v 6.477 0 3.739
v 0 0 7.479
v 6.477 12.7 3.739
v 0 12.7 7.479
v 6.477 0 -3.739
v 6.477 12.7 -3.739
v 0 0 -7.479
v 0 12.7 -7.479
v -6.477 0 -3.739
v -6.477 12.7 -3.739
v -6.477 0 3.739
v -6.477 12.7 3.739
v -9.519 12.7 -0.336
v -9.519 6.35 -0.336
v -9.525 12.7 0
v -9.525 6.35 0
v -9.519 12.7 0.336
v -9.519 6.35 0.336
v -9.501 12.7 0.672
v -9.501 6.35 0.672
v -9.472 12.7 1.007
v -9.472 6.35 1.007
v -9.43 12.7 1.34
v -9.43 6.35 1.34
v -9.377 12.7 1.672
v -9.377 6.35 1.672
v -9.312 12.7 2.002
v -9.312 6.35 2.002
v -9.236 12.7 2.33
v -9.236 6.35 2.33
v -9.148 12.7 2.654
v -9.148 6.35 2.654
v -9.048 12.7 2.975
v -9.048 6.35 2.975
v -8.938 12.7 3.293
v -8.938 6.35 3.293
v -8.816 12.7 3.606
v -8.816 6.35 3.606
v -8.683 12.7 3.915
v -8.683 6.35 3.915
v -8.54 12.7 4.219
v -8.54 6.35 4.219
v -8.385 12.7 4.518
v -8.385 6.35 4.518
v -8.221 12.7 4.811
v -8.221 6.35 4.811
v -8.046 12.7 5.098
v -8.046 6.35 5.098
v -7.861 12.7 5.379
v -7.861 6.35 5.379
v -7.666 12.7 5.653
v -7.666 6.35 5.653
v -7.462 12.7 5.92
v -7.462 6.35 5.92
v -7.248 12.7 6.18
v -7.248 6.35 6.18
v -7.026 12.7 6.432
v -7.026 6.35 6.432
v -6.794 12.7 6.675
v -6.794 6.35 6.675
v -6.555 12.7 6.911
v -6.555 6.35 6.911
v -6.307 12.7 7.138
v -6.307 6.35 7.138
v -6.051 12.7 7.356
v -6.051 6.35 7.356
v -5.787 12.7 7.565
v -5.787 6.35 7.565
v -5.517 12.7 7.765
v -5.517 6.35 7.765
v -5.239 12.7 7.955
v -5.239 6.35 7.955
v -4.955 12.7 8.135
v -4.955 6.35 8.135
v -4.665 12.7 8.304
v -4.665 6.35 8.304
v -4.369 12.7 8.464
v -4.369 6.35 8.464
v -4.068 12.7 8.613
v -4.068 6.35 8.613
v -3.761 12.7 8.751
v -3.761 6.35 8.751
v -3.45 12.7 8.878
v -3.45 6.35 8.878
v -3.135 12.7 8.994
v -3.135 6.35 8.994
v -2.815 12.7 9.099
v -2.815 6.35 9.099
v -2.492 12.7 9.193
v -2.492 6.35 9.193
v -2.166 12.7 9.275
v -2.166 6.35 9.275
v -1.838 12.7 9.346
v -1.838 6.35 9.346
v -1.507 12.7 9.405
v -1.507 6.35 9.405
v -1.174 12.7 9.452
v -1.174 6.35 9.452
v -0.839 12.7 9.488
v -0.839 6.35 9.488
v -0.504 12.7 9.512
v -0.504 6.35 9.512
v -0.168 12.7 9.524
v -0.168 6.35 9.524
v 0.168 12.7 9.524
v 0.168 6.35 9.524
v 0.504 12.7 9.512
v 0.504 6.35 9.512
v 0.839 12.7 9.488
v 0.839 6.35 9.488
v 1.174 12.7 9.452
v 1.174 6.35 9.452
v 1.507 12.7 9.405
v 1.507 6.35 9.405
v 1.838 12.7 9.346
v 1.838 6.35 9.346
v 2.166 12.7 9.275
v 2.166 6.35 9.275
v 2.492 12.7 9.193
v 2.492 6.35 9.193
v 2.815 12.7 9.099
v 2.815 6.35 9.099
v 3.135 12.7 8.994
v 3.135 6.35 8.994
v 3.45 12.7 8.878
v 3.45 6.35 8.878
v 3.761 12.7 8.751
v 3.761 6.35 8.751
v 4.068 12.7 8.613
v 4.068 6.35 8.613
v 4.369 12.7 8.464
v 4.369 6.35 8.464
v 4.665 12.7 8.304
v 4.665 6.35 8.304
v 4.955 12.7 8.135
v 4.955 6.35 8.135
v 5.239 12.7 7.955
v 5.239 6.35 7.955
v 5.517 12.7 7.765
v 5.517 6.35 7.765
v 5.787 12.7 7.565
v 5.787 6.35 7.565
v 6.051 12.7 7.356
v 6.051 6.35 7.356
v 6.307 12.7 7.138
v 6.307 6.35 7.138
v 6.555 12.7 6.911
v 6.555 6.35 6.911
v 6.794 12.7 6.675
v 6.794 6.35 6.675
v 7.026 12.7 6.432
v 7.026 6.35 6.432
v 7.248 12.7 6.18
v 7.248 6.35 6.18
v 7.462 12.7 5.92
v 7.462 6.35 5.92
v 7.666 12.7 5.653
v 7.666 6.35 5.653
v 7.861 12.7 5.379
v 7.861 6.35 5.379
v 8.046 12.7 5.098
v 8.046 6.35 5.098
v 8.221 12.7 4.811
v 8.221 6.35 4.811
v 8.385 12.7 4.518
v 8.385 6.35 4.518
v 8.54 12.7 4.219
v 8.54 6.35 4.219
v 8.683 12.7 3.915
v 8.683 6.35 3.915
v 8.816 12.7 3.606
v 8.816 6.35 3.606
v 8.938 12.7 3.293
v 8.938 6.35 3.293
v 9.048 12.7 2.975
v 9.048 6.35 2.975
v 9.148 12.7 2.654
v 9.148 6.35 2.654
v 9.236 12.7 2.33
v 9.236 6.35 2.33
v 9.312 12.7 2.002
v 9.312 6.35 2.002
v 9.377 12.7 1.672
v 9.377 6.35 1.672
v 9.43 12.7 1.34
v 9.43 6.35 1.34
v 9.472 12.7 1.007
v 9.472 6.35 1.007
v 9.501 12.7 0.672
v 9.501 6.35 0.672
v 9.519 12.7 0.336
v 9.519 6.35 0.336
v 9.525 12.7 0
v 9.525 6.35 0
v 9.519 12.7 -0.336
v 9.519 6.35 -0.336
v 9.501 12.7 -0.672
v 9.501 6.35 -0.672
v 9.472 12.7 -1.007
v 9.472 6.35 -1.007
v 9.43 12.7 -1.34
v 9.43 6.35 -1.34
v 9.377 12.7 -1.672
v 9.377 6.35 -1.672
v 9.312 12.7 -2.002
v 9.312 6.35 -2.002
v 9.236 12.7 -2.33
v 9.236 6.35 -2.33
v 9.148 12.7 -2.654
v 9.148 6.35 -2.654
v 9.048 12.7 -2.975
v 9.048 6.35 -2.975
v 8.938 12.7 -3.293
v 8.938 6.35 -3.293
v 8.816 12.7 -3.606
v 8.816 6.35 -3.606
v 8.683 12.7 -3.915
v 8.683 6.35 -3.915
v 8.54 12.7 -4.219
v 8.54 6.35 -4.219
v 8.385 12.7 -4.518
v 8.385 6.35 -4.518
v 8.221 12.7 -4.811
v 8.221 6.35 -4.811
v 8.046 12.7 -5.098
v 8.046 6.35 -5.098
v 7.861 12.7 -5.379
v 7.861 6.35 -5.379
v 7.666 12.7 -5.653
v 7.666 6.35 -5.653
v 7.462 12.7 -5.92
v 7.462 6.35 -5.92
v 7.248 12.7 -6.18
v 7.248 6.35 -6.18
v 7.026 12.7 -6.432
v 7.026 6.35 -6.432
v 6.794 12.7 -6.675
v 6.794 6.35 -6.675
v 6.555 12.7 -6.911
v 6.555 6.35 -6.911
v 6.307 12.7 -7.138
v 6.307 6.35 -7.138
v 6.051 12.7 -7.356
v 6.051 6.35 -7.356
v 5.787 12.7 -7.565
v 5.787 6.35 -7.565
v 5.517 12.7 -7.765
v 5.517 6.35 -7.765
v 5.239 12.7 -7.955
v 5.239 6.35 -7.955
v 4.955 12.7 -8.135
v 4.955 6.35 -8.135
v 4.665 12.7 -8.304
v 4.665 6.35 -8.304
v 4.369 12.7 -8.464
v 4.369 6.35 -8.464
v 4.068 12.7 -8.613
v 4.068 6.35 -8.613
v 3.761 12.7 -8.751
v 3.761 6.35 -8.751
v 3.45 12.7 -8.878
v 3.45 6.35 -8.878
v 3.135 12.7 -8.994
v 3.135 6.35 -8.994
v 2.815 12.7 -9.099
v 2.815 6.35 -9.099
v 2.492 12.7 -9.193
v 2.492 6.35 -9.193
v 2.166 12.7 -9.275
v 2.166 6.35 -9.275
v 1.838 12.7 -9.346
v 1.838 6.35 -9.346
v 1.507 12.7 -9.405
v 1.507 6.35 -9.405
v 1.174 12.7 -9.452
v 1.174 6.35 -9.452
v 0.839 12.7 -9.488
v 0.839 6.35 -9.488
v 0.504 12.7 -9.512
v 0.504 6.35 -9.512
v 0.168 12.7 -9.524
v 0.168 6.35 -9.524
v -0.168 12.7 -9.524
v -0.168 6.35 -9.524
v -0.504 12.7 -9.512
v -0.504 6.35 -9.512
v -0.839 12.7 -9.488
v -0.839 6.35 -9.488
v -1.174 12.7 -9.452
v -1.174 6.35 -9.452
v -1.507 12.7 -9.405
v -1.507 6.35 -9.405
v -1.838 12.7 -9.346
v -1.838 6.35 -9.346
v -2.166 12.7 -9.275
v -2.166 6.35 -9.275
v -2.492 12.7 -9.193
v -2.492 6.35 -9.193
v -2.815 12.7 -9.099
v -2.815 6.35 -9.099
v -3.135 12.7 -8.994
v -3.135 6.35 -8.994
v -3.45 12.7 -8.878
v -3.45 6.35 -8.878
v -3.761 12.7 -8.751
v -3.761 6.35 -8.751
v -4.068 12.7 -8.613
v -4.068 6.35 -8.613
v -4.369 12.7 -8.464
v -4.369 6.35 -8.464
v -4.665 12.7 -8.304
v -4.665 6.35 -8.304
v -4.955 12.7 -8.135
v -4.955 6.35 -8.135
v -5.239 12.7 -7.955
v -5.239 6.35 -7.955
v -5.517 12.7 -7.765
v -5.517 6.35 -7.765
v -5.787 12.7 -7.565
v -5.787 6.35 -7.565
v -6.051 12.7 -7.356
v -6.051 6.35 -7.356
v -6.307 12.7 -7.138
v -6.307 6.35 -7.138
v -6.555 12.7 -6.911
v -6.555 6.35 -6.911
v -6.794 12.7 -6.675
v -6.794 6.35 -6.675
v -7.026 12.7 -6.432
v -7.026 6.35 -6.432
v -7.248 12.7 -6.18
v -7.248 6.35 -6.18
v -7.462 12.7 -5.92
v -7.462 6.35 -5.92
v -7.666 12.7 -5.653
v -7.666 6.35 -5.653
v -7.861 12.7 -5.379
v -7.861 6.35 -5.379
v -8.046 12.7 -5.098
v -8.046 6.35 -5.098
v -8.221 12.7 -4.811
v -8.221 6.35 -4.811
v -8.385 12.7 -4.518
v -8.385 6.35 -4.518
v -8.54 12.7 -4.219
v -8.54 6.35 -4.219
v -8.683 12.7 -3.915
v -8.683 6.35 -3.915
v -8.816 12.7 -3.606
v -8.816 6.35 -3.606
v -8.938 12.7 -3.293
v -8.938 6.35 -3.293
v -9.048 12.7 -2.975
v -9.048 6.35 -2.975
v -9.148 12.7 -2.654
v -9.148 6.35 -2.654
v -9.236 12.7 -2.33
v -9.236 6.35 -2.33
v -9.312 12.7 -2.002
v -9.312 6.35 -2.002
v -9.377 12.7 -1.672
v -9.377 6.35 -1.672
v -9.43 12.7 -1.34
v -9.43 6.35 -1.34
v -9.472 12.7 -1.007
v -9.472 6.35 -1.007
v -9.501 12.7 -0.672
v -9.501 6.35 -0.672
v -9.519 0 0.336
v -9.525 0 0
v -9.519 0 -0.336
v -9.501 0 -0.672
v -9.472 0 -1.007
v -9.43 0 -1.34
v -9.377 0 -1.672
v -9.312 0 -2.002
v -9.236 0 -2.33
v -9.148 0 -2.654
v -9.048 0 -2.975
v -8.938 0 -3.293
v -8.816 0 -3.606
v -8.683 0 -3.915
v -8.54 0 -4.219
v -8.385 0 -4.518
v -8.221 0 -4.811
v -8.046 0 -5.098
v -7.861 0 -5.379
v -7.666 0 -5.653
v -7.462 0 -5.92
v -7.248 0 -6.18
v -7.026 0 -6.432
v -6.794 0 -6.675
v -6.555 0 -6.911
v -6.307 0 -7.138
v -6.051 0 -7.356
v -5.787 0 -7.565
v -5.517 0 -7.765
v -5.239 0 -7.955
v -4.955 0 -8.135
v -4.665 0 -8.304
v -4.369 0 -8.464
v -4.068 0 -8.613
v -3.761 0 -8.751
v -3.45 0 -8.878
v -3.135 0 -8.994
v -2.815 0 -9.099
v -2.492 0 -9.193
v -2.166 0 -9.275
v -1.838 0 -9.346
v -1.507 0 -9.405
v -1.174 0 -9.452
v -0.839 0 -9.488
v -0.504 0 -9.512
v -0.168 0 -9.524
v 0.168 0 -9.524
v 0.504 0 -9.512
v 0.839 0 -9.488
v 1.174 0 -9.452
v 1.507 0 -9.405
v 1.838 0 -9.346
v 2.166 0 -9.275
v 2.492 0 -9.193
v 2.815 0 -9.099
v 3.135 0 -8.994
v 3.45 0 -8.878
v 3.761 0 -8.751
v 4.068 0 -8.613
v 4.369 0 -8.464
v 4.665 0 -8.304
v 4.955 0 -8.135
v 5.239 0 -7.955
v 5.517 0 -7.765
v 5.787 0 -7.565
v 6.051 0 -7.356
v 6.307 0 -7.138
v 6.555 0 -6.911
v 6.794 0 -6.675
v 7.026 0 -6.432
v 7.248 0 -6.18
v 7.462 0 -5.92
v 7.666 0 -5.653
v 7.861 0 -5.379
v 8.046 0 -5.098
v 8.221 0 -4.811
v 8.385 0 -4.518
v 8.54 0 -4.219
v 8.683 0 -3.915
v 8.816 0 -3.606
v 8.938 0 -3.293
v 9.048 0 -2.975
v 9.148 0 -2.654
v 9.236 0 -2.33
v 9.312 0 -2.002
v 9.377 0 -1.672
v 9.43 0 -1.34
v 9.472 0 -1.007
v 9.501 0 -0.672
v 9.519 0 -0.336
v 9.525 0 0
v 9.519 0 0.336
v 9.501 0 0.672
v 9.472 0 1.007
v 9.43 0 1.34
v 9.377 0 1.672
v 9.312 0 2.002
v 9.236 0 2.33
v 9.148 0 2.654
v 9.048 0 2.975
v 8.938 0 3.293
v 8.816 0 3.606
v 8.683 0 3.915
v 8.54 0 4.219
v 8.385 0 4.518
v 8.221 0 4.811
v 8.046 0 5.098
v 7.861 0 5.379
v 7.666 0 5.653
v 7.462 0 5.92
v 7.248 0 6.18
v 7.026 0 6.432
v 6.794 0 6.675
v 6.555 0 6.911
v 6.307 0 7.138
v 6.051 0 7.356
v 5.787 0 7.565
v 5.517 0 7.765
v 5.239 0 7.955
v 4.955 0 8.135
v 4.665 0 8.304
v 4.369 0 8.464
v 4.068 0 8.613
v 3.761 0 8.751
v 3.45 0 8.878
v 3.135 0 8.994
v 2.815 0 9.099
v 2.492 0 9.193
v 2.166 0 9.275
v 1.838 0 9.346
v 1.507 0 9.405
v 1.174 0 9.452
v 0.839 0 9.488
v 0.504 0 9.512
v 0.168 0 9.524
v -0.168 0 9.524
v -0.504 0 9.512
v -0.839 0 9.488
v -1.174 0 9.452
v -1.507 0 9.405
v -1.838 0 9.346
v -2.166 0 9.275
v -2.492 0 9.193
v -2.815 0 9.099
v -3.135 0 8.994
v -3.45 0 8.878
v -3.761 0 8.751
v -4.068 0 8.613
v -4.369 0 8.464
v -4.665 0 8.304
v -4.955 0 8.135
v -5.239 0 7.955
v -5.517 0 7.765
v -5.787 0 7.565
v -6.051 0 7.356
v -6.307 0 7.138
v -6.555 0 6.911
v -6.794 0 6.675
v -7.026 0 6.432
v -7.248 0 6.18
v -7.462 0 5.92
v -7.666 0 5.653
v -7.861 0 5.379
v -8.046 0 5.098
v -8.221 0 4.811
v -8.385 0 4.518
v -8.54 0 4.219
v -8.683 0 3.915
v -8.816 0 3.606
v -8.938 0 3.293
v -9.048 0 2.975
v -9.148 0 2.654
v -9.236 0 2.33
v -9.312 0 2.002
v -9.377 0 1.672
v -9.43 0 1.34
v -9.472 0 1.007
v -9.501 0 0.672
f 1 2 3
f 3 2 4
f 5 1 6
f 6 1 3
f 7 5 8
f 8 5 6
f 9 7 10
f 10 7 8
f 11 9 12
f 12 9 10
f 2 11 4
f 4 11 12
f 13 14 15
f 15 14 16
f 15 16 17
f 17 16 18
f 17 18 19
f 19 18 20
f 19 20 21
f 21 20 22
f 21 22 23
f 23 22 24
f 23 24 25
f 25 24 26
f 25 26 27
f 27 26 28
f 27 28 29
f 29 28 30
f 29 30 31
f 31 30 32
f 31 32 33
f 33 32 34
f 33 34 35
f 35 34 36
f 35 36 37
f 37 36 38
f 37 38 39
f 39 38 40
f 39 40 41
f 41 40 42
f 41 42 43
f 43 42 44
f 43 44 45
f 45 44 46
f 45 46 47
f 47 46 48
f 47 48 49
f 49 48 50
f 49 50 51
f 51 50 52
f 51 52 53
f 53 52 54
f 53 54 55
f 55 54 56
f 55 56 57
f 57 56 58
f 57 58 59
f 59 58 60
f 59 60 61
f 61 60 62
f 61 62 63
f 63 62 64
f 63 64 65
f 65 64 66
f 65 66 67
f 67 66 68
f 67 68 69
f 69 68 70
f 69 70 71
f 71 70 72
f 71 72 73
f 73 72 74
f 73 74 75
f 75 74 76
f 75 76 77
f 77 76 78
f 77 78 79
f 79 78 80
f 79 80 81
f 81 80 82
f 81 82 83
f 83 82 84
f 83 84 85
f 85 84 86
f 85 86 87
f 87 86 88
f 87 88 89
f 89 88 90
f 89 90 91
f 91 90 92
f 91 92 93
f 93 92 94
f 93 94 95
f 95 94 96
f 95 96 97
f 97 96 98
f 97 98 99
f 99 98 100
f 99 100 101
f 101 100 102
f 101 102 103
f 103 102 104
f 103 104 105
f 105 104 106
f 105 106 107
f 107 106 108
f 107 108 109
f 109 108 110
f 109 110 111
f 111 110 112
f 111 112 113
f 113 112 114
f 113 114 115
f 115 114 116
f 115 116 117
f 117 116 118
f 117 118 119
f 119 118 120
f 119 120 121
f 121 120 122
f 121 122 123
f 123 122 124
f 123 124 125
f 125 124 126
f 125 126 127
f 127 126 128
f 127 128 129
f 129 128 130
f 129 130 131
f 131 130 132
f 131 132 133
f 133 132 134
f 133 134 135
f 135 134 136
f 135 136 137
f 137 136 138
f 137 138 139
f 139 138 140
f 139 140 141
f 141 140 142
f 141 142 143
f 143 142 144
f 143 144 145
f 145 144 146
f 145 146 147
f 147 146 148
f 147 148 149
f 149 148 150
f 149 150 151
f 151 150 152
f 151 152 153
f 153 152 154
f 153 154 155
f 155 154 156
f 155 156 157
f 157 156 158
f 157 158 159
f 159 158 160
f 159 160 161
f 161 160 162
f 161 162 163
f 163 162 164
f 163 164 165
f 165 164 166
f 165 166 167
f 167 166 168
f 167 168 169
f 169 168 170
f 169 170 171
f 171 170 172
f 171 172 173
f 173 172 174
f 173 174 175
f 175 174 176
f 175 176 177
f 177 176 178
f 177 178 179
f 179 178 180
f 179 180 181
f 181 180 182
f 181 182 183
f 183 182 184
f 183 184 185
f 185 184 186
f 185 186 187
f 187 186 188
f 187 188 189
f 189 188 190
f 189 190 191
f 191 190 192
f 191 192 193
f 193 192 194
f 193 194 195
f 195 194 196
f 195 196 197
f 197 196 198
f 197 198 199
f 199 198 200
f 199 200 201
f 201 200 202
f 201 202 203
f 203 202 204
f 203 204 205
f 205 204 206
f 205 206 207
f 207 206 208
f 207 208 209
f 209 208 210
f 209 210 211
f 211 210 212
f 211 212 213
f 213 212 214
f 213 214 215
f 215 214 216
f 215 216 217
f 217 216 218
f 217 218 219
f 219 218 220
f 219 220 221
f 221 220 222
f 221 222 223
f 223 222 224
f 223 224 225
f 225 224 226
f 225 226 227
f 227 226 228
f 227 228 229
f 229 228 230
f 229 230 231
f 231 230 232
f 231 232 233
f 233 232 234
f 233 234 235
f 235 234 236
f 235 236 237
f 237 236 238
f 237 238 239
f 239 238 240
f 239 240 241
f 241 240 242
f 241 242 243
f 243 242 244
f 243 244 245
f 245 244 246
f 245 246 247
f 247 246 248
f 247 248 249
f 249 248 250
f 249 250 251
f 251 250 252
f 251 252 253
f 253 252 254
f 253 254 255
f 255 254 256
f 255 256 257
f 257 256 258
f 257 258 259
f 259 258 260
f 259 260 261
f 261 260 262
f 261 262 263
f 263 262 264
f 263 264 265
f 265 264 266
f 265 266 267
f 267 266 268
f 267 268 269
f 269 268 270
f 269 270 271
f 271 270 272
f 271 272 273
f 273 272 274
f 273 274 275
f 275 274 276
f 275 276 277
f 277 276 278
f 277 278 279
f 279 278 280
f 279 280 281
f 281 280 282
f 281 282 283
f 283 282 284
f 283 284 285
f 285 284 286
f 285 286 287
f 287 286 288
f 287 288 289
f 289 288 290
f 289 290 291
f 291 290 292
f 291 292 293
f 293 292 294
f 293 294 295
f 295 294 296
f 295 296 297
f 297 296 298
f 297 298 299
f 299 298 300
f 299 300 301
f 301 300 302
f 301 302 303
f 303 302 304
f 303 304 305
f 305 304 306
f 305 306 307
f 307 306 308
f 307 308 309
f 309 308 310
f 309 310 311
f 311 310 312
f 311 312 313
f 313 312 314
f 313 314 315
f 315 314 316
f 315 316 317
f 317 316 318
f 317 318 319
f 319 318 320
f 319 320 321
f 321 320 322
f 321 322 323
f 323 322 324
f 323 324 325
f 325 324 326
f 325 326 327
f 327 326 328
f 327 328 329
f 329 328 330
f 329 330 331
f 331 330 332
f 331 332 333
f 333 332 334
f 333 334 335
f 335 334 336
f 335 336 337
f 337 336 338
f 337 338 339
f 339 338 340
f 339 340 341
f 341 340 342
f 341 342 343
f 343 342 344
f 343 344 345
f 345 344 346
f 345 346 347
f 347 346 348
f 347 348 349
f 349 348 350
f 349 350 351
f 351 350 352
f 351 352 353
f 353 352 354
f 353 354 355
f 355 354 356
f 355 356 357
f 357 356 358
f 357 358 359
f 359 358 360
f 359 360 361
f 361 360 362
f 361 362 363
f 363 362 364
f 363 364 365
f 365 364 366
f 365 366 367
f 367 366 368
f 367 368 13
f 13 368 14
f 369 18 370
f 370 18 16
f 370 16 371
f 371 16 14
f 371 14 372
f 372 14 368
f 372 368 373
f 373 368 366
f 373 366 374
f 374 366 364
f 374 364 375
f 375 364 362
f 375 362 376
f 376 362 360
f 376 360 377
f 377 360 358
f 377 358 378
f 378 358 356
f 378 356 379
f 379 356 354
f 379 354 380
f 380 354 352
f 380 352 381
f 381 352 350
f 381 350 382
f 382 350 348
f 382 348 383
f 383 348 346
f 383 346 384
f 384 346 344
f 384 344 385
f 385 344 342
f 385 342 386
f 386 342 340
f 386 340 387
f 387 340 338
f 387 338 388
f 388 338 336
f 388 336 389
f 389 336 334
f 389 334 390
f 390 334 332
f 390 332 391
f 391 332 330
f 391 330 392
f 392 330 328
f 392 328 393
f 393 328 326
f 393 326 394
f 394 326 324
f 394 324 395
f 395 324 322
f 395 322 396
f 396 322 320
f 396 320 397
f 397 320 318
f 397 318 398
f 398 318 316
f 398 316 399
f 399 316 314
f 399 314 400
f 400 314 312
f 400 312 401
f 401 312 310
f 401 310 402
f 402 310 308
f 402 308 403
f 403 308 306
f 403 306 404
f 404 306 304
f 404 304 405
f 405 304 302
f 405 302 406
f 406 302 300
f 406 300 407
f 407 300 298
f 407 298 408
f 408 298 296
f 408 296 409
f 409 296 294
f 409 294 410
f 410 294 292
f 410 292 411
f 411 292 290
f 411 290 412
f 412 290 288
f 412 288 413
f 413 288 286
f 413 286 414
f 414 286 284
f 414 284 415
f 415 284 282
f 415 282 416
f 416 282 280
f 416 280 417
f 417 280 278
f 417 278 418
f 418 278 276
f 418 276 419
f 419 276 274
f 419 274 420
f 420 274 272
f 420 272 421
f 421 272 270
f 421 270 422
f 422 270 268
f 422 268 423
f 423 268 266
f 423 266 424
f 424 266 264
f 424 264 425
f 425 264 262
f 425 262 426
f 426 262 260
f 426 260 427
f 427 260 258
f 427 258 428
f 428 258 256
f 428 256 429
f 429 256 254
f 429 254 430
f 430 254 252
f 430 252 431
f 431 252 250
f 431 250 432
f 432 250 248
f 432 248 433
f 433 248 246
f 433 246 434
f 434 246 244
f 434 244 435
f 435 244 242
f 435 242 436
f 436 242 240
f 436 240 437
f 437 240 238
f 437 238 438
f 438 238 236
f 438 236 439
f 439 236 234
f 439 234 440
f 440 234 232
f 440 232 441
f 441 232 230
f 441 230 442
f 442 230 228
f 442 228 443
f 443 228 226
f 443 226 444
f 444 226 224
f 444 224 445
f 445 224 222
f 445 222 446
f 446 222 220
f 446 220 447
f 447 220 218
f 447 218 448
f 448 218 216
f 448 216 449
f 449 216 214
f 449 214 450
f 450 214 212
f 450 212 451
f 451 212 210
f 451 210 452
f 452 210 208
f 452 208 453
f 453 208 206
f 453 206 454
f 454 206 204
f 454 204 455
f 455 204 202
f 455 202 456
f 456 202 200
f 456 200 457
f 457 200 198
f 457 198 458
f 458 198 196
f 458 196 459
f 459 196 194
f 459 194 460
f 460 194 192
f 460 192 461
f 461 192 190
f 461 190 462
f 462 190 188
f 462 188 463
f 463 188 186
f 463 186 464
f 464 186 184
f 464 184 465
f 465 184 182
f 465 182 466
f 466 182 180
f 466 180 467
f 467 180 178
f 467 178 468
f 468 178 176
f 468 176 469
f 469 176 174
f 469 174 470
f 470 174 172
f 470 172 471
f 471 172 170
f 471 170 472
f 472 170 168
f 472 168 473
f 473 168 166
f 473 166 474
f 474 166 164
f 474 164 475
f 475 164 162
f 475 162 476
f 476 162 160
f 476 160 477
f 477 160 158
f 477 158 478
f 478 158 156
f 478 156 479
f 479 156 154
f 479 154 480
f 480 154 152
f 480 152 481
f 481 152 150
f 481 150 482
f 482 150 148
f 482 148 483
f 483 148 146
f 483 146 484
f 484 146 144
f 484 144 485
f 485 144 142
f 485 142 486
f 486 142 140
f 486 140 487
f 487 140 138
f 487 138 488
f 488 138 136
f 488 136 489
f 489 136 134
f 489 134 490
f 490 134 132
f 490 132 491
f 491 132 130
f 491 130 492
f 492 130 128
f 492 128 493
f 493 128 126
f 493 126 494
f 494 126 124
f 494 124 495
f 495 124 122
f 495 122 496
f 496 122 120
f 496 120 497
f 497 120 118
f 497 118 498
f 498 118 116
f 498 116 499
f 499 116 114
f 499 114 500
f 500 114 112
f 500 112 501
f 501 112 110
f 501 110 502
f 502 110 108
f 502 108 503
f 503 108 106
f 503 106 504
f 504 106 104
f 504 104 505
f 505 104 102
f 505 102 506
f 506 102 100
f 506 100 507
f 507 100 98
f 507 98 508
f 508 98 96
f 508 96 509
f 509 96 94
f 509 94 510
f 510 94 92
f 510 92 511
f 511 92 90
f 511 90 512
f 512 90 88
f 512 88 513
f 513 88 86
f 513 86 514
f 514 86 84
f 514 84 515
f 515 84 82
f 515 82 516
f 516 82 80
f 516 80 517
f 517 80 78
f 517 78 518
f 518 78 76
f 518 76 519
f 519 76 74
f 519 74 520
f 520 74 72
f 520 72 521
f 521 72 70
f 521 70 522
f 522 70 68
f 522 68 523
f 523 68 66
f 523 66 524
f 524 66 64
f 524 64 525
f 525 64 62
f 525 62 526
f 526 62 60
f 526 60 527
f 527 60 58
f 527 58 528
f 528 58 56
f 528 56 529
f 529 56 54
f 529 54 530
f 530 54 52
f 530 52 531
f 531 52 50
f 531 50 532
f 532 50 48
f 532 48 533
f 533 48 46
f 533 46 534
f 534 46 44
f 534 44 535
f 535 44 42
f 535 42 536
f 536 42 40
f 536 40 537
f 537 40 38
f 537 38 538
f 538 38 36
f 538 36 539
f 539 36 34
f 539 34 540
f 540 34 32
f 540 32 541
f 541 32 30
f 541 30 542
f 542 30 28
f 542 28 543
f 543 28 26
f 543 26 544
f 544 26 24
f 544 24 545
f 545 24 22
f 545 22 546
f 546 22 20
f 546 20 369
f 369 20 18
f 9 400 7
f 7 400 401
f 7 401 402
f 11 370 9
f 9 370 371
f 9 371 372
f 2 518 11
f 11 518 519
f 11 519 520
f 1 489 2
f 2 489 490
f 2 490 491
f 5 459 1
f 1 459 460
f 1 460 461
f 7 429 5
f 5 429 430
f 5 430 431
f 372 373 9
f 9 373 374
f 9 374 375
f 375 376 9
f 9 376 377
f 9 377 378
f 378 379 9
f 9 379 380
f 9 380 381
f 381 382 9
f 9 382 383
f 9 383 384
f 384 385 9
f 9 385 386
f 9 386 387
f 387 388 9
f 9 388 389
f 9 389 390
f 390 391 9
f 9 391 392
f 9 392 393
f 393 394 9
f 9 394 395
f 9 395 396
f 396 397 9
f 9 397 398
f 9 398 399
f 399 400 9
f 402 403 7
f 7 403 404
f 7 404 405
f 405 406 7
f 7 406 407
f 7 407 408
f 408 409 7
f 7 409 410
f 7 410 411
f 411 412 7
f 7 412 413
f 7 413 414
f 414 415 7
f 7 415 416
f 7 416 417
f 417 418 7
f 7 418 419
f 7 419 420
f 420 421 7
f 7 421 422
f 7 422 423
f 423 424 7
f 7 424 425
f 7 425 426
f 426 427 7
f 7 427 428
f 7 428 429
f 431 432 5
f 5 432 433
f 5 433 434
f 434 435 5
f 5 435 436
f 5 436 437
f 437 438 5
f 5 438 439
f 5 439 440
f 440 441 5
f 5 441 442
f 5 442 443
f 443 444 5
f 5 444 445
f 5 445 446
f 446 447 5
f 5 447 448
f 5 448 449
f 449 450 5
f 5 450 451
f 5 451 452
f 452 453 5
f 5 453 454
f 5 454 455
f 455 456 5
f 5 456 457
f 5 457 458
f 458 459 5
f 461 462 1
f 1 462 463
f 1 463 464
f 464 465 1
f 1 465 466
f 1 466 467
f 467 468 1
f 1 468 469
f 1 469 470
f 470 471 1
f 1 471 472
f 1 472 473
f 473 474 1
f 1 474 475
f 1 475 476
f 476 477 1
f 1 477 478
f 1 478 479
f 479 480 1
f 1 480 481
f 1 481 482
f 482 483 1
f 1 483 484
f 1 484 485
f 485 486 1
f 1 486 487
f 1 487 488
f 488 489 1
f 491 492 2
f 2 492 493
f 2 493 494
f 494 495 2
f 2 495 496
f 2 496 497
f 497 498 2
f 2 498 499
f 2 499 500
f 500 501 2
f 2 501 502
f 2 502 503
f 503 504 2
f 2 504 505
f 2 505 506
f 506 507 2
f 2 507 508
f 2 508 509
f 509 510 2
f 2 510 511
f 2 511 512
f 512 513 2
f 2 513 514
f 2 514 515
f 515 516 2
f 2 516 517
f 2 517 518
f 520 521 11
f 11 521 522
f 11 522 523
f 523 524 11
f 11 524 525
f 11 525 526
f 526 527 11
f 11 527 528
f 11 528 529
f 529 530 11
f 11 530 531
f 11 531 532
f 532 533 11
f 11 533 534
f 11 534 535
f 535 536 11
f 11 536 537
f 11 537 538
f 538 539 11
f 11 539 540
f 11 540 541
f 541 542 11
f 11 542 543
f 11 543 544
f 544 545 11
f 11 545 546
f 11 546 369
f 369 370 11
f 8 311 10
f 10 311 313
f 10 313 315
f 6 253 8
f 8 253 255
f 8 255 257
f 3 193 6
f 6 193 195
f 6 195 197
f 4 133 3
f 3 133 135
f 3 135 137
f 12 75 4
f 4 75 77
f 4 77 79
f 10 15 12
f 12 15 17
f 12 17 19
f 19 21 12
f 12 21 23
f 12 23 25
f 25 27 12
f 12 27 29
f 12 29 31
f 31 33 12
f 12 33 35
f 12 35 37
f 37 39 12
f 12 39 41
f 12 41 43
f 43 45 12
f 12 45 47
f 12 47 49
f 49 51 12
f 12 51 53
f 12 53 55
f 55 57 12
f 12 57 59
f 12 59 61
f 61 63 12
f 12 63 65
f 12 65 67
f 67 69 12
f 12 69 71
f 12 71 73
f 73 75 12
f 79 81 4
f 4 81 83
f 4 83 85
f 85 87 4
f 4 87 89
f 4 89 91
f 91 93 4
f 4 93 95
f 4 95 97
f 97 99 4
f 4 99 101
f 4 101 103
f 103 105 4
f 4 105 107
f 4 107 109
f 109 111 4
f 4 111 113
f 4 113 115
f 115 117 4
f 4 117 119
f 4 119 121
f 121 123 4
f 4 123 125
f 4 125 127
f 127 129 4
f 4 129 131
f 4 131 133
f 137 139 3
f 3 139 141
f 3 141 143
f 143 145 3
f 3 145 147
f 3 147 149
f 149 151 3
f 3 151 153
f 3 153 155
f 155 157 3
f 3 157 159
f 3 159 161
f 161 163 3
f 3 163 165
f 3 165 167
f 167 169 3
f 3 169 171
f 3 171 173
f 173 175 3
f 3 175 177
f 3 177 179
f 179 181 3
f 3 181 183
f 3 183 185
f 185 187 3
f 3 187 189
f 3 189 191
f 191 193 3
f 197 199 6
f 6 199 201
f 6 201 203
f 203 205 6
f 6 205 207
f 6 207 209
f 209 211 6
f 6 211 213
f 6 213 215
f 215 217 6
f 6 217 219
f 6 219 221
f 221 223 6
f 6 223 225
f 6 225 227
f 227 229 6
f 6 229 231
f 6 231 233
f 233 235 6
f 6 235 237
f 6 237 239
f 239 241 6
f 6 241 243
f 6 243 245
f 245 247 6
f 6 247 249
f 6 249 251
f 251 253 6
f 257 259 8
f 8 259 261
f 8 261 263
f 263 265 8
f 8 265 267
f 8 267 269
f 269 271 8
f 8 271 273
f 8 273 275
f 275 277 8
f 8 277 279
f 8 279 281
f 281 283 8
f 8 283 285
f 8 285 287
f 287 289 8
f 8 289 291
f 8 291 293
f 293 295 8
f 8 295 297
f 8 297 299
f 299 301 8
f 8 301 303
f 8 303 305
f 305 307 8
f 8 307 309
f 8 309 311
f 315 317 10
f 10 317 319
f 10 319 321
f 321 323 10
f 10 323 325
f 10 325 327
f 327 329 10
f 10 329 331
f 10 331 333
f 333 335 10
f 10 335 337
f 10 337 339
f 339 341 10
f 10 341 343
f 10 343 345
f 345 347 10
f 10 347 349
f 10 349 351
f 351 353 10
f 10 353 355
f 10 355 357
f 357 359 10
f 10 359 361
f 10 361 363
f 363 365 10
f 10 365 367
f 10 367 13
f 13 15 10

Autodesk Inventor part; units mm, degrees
ref_plane "YZ Plane" through (0, 0, 0) normal (1, 0, 0) x (0, 1, 0)
ref_plane "XZ Plane" through (0, 0, 0) normal (0, 1, 0) x (-1, 0, 0)
ref_plane "XY Plane" through (0, 0, 0) normal (0, 0, 1) x (1, 0, 0)
sketch "Sketch1" plane through (0, 0, 0) normal (0, 1, 0) x (-1, 0, 0)
  line L0 (0, -13.335) -> (0, 13.335) projected
  line L1 (-13.335, 0) -> (13.335, 0) projected
  circle A0 centre (0, 0) radius 9.525
  dimension "d0" = 19.05
extrude "Extrusion1" add sketch "Sketch1" along normal blind 12.7
sketch "Sketch2" plane through (0, 12.7, 0) normal (0, 1, 0) x (1, 0, 0)
  line L0 (0, 7.479) -> (6.477, 3.7395)
  line L1 (6.477, 3.7395) -> (6.477, -3.7395)
  line L2 (6.477, -3.7395) -> (0, -7.479)
  line L3 (0, -7.479) -> (-6.477, -3.7395)
  line L4 (-6.477, -3.7395) -> (-6.477, 3.7395)
  line L5 (-6.477, 3.7395) -> (0, 7.479)
  point P0 (0, 0)
  point P1 (0, 0)
  dimension "d3" = 12.954
extrude "Extrusion2" cut sketch "Sketch2" against normal through all
properties part number "ShaftSpacer0.5inHex"
